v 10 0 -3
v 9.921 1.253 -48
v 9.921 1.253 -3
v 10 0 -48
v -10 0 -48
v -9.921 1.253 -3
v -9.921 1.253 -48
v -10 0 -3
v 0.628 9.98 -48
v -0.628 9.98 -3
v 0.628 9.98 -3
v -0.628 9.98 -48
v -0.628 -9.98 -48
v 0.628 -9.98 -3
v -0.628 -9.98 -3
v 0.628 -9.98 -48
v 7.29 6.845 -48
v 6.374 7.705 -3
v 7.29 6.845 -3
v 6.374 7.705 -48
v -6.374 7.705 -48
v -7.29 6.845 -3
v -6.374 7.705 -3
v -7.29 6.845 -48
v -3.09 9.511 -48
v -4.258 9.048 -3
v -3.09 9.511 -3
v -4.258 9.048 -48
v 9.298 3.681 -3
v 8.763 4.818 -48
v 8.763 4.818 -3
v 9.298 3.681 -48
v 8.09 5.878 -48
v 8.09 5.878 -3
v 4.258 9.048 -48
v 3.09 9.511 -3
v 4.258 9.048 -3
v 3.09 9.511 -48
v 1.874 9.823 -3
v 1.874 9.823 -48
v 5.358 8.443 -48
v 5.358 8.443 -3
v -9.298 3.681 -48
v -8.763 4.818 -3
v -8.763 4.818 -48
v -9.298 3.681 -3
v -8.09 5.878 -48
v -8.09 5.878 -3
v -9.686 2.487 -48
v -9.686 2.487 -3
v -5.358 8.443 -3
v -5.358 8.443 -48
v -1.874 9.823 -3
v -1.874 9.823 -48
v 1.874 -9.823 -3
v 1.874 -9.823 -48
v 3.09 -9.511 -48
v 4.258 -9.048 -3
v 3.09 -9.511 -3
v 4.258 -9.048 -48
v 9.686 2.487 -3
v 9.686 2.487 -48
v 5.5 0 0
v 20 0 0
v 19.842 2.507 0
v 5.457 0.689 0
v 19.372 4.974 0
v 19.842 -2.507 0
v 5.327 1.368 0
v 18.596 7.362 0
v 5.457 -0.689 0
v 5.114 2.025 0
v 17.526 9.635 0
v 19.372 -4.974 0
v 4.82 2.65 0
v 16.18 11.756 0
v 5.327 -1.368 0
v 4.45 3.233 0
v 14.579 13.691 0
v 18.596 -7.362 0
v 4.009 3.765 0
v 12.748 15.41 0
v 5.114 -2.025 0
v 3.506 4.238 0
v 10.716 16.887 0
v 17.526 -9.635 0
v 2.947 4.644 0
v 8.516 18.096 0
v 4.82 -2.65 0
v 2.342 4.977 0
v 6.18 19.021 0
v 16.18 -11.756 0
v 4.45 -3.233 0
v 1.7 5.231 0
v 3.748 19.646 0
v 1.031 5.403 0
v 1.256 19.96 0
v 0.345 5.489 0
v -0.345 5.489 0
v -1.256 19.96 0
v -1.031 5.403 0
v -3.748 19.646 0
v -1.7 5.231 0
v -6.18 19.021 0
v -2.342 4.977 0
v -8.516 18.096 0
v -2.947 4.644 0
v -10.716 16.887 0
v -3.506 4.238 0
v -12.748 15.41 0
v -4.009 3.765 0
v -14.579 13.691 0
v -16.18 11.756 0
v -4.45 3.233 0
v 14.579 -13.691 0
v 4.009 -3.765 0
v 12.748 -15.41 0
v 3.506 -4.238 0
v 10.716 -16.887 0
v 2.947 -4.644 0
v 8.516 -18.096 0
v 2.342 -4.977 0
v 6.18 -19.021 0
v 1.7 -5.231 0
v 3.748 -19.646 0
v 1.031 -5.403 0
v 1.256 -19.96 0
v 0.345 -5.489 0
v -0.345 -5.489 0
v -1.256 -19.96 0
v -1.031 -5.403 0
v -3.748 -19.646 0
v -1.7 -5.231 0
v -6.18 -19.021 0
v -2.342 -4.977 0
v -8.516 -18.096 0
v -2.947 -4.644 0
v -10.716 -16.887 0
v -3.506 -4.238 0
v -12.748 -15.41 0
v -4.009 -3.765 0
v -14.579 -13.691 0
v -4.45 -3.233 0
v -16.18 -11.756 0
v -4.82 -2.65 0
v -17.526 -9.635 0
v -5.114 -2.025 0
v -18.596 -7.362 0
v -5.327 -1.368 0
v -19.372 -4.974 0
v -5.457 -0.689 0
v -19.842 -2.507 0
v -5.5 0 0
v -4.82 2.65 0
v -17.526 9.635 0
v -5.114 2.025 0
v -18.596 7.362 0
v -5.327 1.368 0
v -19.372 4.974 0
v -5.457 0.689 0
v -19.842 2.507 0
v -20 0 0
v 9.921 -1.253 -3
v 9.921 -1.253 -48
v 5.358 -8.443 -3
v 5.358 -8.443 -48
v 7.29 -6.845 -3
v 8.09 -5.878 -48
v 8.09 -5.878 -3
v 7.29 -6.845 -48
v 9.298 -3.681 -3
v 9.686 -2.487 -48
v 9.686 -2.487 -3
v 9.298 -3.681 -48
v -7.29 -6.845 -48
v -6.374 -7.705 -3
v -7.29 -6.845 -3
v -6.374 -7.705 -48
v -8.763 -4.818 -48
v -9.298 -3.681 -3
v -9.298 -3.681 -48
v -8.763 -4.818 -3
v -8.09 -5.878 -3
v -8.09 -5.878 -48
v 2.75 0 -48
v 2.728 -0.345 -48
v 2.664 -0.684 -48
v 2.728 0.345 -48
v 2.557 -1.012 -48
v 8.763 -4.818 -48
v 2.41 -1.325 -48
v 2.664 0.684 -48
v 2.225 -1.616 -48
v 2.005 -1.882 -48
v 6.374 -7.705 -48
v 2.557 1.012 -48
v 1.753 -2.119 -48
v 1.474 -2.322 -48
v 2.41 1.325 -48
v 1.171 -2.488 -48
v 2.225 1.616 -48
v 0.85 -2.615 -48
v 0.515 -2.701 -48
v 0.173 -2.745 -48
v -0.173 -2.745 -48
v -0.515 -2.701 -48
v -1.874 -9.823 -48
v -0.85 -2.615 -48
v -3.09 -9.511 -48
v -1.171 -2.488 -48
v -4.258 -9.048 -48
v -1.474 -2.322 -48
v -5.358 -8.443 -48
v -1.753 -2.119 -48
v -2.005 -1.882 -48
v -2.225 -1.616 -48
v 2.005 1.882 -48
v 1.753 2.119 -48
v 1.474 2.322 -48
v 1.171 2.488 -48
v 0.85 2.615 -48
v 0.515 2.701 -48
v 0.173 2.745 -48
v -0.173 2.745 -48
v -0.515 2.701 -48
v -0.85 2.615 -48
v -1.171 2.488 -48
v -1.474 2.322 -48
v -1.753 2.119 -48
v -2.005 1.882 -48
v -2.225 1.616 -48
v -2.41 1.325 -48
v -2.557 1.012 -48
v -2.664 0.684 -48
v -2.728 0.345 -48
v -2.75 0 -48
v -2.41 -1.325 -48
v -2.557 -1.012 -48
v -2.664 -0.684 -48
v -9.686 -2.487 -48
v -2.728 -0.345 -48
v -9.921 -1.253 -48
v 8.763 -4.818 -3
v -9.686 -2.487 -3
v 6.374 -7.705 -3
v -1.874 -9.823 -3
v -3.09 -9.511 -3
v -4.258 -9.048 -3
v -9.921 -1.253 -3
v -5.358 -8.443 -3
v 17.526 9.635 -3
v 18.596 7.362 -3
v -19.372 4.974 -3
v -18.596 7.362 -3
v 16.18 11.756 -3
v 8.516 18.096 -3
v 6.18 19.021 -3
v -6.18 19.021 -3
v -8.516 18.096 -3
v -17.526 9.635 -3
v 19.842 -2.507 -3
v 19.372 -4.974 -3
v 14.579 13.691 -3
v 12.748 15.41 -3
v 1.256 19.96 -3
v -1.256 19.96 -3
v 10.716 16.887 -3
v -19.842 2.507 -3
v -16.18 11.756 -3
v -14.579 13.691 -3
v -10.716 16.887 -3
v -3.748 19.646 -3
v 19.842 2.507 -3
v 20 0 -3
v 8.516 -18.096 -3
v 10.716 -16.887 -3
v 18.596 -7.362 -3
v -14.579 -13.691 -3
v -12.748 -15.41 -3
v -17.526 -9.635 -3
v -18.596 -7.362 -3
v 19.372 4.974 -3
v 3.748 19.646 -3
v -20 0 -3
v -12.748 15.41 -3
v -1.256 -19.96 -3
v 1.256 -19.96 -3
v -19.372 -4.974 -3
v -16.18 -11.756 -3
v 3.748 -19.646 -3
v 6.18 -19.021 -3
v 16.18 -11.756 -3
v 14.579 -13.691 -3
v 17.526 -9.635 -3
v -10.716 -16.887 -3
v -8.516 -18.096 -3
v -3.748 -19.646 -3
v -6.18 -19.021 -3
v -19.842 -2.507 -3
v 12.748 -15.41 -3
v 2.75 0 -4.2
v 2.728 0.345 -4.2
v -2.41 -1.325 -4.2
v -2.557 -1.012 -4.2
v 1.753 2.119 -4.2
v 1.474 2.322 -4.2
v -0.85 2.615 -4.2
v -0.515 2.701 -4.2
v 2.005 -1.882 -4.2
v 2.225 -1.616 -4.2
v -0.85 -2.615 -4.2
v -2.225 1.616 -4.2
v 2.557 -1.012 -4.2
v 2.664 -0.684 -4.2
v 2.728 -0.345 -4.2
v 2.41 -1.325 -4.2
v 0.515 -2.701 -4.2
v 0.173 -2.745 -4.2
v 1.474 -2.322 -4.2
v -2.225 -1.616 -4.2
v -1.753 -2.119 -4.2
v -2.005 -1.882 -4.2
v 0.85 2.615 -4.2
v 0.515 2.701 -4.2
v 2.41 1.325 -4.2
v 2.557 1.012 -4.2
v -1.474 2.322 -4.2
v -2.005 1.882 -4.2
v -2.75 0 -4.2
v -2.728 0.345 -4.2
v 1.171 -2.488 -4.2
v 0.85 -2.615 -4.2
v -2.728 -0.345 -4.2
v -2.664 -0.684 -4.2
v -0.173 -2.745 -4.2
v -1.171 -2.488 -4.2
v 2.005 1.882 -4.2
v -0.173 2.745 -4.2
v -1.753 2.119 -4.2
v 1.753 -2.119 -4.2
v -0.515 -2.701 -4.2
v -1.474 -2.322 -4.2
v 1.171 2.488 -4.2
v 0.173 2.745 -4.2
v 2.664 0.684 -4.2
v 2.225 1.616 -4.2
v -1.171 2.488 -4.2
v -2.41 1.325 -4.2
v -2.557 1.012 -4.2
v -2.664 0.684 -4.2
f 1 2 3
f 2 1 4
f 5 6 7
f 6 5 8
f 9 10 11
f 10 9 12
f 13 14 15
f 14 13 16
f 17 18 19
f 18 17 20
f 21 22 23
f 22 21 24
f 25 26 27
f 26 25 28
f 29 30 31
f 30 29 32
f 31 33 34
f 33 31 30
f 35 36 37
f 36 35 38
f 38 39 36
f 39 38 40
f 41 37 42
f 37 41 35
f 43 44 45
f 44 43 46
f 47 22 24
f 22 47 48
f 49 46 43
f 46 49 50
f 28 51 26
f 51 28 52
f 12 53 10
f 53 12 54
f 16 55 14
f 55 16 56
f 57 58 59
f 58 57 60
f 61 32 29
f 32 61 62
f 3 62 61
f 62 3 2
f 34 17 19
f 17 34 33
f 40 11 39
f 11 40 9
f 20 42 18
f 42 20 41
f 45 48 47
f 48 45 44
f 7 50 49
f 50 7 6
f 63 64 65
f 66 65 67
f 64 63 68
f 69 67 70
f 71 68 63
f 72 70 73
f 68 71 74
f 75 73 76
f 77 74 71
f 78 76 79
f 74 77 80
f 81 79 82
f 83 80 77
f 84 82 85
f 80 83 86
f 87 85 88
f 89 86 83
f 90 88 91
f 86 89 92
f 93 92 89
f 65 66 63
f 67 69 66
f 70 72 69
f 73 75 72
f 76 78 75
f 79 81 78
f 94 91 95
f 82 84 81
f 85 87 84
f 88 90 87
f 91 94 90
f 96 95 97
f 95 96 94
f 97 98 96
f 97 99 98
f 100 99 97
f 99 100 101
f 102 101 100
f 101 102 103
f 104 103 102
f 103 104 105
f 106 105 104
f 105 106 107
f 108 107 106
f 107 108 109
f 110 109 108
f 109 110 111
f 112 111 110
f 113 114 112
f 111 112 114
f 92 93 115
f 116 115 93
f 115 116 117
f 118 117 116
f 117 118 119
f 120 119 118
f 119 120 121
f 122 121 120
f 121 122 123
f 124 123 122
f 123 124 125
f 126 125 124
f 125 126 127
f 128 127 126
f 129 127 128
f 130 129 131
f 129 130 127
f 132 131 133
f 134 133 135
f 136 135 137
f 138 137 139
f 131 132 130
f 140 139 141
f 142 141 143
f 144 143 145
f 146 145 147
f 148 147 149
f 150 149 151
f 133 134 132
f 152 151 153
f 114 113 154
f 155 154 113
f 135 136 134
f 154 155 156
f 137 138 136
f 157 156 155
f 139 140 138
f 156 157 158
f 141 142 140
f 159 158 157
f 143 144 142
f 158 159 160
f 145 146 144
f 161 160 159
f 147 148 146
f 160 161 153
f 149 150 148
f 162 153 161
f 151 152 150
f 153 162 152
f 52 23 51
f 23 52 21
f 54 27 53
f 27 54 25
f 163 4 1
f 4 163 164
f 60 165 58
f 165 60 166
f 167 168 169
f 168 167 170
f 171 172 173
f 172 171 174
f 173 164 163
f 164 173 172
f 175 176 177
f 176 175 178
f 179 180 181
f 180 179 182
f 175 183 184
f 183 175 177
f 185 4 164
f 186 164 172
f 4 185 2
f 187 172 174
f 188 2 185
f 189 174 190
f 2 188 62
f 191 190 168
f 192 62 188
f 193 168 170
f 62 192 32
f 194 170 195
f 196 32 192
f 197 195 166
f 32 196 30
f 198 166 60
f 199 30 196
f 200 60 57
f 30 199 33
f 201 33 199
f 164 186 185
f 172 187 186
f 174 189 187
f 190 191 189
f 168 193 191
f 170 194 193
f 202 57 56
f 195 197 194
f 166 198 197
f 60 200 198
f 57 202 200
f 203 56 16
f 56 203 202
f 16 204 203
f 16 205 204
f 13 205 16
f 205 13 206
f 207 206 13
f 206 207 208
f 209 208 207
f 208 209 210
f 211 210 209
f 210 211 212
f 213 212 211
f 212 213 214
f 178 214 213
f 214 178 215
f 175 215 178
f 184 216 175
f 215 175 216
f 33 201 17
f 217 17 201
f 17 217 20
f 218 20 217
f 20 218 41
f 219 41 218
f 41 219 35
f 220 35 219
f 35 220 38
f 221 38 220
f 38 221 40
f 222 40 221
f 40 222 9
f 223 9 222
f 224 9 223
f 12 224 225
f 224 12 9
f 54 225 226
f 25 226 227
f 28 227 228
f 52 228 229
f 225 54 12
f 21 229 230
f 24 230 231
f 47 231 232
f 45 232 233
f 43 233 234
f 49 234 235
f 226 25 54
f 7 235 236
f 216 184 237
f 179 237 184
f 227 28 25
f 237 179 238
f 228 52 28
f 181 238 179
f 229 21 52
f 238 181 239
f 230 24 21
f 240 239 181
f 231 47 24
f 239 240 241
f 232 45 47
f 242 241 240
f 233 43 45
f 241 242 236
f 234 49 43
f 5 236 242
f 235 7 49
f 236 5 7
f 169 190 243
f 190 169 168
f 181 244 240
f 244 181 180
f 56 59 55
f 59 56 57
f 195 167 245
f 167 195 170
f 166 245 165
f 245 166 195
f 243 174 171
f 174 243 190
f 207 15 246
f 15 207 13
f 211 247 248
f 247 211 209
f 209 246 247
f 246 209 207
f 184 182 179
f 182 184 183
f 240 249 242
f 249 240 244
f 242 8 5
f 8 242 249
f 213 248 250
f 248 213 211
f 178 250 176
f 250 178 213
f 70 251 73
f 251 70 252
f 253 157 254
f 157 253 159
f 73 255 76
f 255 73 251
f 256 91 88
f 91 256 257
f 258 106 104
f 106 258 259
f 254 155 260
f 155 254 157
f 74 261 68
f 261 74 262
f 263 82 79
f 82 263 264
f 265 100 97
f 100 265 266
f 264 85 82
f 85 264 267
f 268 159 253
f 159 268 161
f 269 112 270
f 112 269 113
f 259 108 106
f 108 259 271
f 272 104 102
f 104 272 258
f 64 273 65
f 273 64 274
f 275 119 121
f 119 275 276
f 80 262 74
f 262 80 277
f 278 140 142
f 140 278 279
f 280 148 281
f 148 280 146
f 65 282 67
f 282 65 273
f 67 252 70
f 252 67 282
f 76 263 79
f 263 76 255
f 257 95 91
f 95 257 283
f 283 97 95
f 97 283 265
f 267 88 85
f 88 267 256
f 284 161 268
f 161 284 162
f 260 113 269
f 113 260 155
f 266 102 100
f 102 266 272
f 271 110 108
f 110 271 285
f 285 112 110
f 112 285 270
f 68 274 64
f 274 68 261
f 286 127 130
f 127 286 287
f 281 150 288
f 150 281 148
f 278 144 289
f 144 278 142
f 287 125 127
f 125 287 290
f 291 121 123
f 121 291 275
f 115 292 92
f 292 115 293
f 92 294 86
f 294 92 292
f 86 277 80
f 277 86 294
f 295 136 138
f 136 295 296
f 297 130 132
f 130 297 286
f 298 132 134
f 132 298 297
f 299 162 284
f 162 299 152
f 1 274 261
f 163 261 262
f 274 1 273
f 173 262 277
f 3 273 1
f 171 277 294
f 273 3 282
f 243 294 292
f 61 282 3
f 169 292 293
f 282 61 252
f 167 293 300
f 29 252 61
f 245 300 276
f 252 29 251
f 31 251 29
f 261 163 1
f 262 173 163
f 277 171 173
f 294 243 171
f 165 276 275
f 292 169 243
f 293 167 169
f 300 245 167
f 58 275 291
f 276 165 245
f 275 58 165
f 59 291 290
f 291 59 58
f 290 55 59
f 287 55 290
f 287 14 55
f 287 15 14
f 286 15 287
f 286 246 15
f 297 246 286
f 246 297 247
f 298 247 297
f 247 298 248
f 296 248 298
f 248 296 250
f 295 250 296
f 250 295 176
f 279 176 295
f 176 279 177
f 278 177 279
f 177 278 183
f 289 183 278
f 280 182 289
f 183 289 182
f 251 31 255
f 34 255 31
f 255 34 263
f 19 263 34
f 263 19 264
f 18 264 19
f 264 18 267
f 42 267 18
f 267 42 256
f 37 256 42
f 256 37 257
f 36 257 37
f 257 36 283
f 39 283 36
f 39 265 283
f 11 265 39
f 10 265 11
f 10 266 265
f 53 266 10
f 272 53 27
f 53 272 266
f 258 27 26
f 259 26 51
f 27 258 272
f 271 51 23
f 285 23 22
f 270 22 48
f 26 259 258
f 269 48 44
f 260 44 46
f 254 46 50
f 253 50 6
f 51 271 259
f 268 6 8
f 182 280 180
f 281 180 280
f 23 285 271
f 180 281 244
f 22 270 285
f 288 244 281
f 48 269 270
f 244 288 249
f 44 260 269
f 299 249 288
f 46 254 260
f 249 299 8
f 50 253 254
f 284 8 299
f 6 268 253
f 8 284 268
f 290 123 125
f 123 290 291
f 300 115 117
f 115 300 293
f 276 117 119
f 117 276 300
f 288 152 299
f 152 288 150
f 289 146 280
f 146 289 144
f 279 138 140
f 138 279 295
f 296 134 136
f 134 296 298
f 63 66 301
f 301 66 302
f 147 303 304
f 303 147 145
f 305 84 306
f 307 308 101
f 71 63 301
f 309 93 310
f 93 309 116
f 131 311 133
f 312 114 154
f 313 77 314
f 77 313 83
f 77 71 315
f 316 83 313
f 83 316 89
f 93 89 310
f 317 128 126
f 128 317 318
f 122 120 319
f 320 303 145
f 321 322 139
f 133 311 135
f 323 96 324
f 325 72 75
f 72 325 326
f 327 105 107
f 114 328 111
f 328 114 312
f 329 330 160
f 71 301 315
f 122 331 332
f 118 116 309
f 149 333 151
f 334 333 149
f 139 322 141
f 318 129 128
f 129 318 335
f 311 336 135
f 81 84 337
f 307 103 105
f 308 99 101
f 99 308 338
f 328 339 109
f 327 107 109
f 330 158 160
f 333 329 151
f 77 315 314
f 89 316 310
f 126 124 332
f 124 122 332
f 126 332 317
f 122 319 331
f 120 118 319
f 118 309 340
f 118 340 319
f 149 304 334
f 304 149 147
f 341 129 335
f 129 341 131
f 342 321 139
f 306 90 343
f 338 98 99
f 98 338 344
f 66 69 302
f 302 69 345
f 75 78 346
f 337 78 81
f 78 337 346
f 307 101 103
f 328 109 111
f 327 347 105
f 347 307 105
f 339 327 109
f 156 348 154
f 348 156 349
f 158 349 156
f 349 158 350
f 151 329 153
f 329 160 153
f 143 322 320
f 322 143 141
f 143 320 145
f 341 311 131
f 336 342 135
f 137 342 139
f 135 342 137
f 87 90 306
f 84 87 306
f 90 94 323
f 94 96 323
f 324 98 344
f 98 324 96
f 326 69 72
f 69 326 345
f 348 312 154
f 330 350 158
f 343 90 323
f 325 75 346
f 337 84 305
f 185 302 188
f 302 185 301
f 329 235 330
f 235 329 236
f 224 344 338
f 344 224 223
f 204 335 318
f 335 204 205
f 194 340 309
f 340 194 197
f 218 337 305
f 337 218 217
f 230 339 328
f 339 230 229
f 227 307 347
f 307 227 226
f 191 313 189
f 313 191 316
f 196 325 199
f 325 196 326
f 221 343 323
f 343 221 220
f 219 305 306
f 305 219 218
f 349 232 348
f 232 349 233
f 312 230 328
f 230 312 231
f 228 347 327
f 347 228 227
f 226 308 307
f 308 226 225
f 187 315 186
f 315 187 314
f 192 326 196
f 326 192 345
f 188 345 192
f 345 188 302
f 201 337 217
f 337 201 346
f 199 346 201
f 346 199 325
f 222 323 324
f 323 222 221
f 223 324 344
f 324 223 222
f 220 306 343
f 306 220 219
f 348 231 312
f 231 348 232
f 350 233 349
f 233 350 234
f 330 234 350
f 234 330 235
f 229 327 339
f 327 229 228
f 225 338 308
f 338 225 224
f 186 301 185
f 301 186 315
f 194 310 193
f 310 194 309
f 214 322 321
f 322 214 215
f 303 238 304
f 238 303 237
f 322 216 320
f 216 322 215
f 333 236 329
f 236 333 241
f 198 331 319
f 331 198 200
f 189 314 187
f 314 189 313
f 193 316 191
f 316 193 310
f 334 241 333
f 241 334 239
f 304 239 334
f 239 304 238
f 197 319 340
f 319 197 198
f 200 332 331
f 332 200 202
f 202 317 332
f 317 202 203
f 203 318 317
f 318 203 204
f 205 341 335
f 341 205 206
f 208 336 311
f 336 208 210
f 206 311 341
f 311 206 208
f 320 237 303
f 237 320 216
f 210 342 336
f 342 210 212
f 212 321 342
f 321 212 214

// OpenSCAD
$fn = 50;


difference() {
	union() {
		translate(v = [0, 0, -48.0000000000]) {
			cylinder(h = 48, r = 10.0000000000);
		}
		translate(v = [0, 0, -3.0000000000]) {
			cylinder(h = 3, r = 20.0000000000);
		}
	}
	union() {
		translate(v = [0, 0, 0]) {
			rotate(a = [0, 0, 0]) {
				difference() {
					union() {
						#translate(v = [0, 0, -48.0000000000]) {
							cylinder(h = 48, r = 2.2500000000);
						}
						#translate(v = [0, 0, -4.2000000000]) {
							cylinder(h = 4.2000000000, r1 = 2.7500000000, r2 = 5.5000000000);
						}
						#translate(v = [0, 0, -48.0000000000]) {
							cylinder(h = 48, r = 2.7500000000);
						}
						#translate(v = [0, 0, -48.0000000000]) {
							cylinder(h = 48, r = 2.2500000000);
						}
					}
					union();
				}
			}
		}
	}
}
